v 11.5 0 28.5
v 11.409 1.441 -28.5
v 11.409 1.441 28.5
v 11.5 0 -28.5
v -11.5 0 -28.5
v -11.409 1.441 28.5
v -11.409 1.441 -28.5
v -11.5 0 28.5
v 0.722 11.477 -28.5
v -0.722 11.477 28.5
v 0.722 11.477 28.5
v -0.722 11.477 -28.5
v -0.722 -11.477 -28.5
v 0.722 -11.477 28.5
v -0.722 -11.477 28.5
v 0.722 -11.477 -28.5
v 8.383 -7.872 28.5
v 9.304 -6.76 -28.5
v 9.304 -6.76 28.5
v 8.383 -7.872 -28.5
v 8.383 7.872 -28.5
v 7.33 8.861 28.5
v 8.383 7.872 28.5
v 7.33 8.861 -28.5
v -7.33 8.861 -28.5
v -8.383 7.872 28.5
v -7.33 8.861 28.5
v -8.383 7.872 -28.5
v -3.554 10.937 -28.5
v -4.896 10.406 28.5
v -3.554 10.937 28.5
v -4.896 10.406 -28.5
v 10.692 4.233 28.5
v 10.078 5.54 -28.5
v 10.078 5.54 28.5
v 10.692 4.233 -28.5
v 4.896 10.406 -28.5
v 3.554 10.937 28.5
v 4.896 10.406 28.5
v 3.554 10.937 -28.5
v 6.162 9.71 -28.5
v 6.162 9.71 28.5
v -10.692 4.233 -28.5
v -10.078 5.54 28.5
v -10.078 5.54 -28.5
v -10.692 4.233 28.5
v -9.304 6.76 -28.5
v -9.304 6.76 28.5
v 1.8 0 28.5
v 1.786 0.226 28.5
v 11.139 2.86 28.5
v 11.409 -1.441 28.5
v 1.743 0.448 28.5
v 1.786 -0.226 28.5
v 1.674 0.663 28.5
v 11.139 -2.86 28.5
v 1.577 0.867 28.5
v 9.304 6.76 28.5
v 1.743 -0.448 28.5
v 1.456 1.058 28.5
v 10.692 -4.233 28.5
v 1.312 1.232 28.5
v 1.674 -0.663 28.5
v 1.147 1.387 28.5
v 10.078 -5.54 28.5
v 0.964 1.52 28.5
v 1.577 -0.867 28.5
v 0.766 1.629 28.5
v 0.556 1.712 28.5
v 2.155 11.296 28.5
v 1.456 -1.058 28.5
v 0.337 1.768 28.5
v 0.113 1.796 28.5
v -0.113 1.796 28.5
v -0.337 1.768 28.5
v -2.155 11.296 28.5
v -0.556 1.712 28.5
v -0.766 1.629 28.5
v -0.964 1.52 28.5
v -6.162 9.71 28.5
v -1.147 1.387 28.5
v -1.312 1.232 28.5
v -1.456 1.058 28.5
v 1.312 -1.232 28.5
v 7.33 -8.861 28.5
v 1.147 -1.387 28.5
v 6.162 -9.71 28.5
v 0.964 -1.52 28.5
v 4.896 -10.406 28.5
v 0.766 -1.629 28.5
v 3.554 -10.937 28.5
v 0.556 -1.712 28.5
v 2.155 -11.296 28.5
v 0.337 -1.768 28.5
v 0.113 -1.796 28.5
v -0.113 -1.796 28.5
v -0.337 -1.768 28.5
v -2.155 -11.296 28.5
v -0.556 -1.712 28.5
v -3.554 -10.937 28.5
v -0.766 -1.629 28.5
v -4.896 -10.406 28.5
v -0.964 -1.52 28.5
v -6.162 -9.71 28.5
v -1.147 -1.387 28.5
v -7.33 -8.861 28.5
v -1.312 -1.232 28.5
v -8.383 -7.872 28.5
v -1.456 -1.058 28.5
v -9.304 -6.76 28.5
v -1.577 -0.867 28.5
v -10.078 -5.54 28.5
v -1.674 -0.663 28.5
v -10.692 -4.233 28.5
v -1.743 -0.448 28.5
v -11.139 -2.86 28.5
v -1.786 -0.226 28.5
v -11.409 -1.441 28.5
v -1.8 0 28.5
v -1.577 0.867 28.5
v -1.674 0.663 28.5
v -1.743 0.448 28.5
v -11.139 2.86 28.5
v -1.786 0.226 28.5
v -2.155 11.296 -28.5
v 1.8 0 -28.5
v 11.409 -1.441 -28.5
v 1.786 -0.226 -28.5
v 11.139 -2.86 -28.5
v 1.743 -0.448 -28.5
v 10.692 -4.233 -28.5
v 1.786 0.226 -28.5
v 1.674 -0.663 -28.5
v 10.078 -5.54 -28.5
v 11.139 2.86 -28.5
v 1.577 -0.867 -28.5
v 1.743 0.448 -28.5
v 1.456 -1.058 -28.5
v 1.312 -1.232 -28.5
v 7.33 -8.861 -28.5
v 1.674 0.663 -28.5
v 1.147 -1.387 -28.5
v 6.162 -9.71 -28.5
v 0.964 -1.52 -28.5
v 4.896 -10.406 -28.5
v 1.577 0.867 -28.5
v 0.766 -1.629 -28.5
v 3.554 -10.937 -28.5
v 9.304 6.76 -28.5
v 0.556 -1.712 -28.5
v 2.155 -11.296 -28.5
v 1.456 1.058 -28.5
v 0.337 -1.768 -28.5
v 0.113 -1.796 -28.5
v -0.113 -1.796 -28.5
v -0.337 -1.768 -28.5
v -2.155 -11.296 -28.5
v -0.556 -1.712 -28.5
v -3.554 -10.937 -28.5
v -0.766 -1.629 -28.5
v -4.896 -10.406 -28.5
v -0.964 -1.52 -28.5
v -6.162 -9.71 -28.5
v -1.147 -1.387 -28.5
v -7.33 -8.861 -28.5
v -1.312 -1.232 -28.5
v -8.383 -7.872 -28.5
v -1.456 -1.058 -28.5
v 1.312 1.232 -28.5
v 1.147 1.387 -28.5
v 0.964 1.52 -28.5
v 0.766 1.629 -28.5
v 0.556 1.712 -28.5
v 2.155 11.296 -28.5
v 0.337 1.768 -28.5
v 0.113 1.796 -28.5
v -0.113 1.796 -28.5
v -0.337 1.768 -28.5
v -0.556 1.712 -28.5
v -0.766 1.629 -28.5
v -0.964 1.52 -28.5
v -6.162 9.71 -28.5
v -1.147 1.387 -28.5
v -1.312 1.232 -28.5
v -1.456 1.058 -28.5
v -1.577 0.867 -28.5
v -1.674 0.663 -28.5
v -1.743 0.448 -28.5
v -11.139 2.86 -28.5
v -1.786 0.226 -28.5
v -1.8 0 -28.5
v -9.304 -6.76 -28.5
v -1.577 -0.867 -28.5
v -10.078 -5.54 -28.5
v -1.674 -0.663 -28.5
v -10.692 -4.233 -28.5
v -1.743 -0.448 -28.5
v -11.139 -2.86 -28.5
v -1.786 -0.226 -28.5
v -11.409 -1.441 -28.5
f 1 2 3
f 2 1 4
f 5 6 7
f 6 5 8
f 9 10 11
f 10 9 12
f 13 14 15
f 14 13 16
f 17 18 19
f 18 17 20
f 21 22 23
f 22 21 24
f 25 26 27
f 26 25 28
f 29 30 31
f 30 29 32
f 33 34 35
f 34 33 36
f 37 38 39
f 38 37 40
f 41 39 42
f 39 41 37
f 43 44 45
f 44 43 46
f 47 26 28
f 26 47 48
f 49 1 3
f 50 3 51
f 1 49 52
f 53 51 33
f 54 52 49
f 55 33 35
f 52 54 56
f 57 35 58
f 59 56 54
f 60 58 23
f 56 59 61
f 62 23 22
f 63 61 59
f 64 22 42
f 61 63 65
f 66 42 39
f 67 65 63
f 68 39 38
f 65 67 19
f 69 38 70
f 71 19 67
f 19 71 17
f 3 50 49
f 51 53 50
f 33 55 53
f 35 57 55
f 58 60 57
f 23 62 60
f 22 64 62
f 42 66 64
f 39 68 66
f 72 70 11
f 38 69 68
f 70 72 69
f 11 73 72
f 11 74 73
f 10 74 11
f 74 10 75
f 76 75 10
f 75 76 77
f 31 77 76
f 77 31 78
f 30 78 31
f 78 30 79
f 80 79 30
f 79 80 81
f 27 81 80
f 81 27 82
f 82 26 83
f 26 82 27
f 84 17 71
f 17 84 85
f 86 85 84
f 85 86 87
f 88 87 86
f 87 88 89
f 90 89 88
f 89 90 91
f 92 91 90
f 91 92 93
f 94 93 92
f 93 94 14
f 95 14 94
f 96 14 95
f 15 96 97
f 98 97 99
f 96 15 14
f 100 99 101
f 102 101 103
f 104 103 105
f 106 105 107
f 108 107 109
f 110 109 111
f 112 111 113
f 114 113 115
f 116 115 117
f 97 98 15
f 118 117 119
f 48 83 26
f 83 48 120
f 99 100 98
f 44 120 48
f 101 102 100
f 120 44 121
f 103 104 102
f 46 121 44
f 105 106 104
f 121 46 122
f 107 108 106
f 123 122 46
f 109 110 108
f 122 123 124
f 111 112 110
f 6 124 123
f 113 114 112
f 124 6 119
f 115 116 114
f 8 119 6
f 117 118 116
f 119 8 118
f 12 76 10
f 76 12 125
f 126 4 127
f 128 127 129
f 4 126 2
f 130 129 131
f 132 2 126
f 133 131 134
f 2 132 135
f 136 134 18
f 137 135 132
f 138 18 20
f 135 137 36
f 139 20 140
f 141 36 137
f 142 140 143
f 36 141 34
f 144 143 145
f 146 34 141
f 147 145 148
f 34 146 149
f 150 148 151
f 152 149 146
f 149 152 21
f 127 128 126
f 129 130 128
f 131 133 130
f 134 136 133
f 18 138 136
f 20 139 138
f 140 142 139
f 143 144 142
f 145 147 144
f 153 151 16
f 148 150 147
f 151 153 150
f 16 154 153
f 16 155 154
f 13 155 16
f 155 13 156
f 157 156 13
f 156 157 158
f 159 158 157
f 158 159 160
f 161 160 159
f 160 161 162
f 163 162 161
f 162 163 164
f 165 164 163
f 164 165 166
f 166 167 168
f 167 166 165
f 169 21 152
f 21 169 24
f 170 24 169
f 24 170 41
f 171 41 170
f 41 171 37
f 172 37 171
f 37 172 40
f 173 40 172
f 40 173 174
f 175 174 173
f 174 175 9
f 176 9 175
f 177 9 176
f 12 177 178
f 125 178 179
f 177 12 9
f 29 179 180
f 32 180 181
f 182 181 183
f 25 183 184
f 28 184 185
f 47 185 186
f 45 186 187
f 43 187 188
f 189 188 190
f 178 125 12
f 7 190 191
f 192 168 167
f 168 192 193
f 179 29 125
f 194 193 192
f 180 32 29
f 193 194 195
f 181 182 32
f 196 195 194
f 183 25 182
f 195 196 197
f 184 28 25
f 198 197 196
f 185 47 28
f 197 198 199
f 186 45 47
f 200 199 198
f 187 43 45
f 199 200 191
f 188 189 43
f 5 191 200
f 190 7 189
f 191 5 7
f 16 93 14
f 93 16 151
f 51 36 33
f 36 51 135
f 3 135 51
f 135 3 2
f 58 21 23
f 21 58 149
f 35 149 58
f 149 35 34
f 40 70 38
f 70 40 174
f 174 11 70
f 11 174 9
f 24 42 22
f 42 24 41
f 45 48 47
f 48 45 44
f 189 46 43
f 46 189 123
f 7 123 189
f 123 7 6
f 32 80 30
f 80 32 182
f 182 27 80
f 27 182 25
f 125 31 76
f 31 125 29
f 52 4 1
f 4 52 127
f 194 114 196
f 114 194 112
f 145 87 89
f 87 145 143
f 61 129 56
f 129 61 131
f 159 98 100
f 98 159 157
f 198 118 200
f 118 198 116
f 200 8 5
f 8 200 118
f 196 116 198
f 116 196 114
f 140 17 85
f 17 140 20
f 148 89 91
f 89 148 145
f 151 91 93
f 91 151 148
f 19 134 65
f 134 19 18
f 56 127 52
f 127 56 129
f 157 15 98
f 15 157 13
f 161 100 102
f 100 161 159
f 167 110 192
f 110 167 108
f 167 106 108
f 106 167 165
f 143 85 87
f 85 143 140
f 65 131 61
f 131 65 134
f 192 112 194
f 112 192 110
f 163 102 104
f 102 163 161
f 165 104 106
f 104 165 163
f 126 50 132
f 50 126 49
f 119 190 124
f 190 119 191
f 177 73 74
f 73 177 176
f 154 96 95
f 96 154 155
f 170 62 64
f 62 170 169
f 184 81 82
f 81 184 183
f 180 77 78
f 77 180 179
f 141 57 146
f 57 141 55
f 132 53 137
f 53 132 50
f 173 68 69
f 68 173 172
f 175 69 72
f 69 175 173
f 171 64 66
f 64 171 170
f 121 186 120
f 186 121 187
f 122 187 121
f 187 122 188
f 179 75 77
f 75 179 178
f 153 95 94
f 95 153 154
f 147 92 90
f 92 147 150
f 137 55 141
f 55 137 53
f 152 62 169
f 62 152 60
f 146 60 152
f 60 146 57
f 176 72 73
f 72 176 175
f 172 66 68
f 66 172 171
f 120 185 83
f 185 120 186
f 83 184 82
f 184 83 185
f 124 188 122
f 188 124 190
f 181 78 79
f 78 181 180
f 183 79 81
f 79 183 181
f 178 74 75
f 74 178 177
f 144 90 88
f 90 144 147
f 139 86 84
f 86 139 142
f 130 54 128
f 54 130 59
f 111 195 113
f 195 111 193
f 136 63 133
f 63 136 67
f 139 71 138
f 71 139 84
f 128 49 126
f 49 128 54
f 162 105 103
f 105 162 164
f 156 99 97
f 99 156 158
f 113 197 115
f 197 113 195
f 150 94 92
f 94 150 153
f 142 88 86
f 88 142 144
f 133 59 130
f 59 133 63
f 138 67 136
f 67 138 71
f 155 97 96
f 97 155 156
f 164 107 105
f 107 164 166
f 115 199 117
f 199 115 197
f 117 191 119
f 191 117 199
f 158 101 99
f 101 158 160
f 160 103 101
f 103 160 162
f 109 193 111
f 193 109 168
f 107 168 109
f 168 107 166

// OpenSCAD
$fn = 50;


difference() {
	union() {
		translate(v = [0, 0, -28.5000000000]) {
			cylinder(h = 57, r = 11.5000000000);
		}
	}
	union() {
		translate(v = [0, 0, -100.0000000000]) {
			cylinder(h = 200, r = 1.8000000000);
		}
	}
}
